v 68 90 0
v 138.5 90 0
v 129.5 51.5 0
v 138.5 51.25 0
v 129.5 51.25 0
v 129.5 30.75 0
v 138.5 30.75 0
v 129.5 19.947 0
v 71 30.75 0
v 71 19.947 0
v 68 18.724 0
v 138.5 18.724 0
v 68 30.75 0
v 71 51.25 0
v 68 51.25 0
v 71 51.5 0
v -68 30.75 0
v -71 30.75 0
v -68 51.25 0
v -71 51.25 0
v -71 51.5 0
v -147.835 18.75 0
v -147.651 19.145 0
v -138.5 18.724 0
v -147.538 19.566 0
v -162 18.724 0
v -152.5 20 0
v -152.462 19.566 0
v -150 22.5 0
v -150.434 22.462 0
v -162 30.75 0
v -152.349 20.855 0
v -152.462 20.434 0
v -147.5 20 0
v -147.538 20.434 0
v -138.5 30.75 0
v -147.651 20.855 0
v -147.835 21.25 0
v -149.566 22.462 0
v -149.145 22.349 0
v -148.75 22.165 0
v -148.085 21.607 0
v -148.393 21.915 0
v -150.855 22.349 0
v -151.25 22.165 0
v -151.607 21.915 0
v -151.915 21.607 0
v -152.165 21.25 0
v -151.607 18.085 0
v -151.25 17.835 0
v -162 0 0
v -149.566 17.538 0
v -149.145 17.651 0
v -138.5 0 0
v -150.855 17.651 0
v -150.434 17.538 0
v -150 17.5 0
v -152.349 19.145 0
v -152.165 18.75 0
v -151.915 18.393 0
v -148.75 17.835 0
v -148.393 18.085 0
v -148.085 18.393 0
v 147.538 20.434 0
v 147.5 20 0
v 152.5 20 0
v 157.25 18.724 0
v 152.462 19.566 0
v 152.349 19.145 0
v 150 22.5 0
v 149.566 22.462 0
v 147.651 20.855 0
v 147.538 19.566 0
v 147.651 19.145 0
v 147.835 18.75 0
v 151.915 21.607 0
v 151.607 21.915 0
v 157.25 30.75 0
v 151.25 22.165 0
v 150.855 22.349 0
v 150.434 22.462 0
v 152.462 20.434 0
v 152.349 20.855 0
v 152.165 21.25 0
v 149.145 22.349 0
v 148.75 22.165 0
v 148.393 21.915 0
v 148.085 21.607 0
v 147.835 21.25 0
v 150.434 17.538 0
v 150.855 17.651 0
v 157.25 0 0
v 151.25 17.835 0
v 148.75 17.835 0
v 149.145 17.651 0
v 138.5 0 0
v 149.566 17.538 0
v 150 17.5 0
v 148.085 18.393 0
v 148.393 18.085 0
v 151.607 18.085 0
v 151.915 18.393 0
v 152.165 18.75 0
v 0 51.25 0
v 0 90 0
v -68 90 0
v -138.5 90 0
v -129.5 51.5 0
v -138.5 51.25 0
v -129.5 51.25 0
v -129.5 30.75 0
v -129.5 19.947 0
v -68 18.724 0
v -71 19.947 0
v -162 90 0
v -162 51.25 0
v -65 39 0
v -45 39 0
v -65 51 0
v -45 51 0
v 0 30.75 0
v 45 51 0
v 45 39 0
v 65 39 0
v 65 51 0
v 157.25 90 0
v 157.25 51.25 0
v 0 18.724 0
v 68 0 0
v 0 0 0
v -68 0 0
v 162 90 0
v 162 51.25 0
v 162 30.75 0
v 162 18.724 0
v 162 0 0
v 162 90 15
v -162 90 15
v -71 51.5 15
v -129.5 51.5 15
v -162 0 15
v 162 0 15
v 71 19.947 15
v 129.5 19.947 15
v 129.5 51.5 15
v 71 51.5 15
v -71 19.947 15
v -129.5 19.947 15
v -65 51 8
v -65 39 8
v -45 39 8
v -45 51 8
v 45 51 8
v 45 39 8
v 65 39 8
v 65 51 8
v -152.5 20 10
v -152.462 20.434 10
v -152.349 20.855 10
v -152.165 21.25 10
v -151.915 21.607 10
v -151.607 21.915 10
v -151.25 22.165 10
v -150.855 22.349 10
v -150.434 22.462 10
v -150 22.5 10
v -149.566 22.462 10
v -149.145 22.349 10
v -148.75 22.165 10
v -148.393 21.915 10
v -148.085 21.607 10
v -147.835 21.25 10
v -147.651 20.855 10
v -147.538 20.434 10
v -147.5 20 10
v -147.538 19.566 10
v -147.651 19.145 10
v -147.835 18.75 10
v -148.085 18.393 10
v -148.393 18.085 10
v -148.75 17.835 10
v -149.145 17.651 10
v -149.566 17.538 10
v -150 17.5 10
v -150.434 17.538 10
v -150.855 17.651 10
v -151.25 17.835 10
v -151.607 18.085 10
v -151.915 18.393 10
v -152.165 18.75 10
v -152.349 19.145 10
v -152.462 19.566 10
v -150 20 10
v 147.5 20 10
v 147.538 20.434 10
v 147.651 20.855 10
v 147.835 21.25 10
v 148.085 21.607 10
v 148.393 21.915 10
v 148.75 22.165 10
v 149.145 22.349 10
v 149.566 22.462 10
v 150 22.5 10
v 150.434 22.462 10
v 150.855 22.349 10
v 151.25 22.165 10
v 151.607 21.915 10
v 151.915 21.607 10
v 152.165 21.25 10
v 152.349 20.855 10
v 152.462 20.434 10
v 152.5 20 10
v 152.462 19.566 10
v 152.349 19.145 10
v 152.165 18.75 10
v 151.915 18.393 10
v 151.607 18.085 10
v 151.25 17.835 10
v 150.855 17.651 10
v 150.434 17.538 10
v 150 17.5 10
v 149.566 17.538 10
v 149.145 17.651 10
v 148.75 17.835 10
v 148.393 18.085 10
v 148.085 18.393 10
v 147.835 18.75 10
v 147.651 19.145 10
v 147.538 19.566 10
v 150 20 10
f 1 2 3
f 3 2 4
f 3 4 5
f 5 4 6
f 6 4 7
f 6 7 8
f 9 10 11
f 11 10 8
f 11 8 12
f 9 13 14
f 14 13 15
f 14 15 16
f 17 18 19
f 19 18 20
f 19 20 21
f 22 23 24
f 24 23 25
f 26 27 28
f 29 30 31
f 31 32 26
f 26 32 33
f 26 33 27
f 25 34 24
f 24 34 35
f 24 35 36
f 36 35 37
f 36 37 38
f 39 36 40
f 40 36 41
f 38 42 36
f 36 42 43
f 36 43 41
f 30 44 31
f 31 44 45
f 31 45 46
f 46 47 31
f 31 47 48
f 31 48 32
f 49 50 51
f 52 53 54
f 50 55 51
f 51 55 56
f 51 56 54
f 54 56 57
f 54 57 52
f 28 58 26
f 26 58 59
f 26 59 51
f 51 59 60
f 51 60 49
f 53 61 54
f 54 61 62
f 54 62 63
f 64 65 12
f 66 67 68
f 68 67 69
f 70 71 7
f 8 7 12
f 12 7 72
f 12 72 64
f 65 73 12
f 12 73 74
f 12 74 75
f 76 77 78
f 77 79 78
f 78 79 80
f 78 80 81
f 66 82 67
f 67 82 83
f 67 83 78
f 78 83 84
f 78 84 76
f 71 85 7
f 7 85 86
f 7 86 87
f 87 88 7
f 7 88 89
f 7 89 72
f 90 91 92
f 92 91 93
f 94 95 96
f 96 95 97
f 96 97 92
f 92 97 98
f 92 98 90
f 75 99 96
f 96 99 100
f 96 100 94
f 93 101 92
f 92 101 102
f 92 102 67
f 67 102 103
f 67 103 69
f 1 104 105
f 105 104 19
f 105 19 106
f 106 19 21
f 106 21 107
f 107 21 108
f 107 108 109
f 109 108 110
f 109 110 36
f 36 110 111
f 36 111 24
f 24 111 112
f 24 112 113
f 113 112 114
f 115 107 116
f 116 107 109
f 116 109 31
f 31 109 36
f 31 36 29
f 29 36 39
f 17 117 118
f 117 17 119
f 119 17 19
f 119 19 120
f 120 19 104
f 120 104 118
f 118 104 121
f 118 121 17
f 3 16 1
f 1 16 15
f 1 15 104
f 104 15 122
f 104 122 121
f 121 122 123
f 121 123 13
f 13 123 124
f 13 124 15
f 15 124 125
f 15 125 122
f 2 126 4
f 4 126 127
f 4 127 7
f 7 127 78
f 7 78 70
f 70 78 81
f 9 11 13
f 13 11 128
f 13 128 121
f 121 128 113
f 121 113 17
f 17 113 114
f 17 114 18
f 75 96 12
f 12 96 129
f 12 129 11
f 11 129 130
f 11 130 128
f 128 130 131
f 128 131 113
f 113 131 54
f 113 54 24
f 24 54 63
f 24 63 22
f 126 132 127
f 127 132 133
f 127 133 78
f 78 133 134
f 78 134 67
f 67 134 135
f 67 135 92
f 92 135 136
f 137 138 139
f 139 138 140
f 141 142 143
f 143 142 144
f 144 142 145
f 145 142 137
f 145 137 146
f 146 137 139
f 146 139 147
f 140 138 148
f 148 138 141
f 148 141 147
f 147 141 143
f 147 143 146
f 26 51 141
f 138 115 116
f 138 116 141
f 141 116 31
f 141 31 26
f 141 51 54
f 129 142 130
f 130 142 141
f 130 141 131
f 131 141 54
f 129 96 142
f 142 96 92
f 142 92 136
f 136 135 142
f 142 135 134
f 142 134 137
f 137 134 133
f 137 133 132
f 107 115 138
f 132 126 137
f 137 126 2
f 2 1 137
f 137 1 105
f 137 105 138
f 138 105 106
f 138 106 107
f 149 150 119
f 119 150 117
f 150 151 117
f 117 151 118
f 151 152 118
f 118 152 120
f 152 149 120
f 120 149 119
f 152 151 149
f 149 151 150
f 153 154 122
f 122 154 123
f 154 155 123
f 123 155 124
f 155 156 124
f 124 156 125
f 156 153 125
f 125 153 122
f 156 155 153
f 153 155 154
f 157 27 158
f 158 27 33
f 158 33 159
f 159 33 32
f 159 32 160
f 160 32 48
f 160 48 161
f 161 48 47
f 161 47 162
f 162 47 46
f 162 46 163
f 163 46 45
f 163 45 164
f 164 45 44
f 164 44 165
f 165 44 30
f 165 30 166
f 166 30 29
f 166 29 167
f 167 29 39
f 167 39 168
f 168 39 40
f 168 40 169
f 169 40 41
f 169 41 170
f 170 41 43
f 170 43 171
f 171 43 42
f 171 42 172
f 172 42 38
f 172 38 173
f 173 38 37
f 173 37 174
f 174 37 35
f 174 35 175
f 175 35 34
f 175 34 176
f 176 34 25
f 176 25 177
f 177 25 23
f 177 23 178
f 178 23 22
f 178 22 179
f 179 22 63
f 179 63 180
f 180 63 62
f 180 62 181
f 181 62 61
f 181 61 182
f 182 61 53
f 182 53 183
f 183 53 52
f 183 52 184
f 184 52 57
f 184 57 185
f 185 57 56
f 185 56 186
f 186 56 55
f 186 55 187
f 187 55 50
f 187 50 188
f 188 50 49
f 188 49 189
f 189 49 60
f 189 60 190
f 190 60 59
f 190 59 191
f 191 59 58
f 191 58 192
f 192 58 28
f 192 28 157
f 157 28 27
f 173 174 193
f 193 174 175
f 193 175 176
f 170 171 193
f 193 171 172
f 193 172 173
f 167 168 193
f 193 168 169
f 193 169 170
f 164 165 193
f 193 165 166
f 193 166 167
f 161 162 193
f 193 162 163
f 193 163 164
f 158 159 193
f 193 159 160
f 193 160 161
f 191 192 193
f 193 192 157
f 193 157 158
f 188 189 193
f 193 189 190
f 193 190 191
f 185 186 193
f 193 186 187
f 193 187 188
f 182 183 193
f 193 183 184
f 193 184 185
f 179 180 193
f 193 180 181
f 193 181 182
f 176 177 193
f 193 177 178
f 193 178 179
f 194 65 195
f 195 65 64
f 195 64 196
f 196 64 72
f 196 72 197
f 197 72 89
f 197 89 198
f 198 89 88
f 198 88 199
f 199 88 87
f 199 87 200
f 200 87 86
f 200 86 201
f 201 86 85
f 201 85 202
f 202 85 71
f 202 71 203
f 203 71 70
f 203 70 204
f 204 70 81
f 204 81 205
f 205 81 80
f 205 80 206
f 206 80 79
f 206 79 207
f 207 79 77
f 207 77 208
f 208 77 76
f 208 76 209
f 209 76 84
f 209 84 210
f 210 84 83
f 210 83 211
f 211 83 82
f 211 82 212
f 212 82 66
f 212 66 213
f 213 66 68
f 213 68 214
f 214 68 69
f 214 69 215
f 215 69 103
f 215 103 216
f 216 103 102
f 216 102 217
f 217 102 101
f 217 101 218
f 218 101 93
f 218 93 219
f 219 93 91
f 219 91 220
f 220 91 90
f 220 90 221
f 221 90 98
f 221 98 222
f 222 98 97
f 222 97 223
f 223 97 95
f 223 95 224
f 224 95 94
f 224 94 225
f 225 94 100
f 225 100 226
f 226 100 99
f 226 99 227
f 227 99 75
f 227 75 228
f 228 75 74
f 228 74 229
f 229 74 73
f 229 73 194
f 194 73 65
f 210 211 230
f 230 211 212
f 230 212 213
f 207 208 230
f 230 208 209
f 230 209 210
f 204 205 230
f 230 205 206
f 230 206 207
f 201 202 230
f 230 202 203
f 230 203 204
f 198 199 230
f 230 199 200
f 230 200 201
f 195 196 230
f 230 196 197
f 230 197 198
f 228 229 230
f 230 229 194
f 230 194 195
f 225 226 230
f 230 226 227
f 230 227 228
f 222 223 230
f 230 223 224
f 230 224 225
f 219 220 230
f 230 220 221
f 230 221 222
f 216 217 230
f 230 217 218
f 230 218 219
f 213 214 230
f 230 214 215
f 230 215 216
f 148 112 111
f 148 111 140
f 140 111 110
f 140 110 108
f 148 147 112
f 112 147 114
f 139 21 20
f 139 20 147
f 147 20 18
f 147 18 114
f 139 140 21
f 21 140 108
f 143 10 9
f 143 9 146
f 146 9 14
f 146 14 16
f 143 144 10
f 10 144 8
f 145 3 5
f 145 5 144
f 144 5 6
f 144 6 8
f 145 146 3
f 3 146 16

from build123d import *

# Parameters (mm, degrees)
SK_BODY_W               = 324
SK_BODY_H               = 90
EX_BODY_DEPTH           = 15
SK_SWITCHPOCKETS_W      = 20
SK_SWITCHPOCKETS_H      = 12
CUT_SWITCHPOCKETS_DEPTH = 8
SK_GUIDEPINS_R          = 2.5
CUT_GUIDEPINS_DEPTH     = 10
SK_CLIFFWINDOWS_W       = 58.5
SK_CLIFFWINDOWS_H       = 31.552578851
CUT_CLIFFWINDOWS_DEPTH  = 15


with BuildPart() as part:
    # SK_Body → EX_Body (new body)
    with BuildSketch(Plane.XY):
        with Locations((0, 45)):
            Rectangle(SK_BODY_W, SK_BODY_H)
    extrude(amount=EX_BODY_DEPTH)

    # SK_SwitchPockets → CUT_SwitchPockets (cut)
    with BuildSketch(Plane.XY):
        with Locations((55, 45)):
            Rectangle(SK_SWITCHPOCKETS_W, SK_SWITCHPOCKETS_H)
        with Locations((-55, 45)):
            Rectangle(SK_SWITCHPOCKETS_W, SK_SWITCHPOCKETS_H)
    extrude(amount=CUT_SWITCHPOCKETS_DEPTH, mode=Mode.SUBTRACT)

    # SK_GuidePins → CUT_GuidePins (cut)
    with BuildSketch(Plane.XY):
        with Locations((150, 20)):
            Circle(SK_GUIDEPINS_R)
        with Locations((-150, 20)):
            Circle(SK_GUIDEPINS_R)
    extrude(amount=CUT_GUIDEPINS_DEPTH, mode=Mode.SUBTRACT)

    # SK_CliffWindows → CUT_CliffWindows (cut)
    with BuildSketch(Plane.XY):
        with Locations((100.25, 35.723710575)):
            Rectangle(SK_CLIFFWINDOWS_W, SK_CLIFFWINDOWS_H)
        with Locations((-100.25, 35.723710575)):
            Rectangle(SK_CLIFFWINDOWS_W, SK_CLIFFWINDOWS_H)
    extrude(amount=CUT_CLIFFWINDOWS_DEPTH, mode=Mode.SUBTRACT)


solid = part.part
